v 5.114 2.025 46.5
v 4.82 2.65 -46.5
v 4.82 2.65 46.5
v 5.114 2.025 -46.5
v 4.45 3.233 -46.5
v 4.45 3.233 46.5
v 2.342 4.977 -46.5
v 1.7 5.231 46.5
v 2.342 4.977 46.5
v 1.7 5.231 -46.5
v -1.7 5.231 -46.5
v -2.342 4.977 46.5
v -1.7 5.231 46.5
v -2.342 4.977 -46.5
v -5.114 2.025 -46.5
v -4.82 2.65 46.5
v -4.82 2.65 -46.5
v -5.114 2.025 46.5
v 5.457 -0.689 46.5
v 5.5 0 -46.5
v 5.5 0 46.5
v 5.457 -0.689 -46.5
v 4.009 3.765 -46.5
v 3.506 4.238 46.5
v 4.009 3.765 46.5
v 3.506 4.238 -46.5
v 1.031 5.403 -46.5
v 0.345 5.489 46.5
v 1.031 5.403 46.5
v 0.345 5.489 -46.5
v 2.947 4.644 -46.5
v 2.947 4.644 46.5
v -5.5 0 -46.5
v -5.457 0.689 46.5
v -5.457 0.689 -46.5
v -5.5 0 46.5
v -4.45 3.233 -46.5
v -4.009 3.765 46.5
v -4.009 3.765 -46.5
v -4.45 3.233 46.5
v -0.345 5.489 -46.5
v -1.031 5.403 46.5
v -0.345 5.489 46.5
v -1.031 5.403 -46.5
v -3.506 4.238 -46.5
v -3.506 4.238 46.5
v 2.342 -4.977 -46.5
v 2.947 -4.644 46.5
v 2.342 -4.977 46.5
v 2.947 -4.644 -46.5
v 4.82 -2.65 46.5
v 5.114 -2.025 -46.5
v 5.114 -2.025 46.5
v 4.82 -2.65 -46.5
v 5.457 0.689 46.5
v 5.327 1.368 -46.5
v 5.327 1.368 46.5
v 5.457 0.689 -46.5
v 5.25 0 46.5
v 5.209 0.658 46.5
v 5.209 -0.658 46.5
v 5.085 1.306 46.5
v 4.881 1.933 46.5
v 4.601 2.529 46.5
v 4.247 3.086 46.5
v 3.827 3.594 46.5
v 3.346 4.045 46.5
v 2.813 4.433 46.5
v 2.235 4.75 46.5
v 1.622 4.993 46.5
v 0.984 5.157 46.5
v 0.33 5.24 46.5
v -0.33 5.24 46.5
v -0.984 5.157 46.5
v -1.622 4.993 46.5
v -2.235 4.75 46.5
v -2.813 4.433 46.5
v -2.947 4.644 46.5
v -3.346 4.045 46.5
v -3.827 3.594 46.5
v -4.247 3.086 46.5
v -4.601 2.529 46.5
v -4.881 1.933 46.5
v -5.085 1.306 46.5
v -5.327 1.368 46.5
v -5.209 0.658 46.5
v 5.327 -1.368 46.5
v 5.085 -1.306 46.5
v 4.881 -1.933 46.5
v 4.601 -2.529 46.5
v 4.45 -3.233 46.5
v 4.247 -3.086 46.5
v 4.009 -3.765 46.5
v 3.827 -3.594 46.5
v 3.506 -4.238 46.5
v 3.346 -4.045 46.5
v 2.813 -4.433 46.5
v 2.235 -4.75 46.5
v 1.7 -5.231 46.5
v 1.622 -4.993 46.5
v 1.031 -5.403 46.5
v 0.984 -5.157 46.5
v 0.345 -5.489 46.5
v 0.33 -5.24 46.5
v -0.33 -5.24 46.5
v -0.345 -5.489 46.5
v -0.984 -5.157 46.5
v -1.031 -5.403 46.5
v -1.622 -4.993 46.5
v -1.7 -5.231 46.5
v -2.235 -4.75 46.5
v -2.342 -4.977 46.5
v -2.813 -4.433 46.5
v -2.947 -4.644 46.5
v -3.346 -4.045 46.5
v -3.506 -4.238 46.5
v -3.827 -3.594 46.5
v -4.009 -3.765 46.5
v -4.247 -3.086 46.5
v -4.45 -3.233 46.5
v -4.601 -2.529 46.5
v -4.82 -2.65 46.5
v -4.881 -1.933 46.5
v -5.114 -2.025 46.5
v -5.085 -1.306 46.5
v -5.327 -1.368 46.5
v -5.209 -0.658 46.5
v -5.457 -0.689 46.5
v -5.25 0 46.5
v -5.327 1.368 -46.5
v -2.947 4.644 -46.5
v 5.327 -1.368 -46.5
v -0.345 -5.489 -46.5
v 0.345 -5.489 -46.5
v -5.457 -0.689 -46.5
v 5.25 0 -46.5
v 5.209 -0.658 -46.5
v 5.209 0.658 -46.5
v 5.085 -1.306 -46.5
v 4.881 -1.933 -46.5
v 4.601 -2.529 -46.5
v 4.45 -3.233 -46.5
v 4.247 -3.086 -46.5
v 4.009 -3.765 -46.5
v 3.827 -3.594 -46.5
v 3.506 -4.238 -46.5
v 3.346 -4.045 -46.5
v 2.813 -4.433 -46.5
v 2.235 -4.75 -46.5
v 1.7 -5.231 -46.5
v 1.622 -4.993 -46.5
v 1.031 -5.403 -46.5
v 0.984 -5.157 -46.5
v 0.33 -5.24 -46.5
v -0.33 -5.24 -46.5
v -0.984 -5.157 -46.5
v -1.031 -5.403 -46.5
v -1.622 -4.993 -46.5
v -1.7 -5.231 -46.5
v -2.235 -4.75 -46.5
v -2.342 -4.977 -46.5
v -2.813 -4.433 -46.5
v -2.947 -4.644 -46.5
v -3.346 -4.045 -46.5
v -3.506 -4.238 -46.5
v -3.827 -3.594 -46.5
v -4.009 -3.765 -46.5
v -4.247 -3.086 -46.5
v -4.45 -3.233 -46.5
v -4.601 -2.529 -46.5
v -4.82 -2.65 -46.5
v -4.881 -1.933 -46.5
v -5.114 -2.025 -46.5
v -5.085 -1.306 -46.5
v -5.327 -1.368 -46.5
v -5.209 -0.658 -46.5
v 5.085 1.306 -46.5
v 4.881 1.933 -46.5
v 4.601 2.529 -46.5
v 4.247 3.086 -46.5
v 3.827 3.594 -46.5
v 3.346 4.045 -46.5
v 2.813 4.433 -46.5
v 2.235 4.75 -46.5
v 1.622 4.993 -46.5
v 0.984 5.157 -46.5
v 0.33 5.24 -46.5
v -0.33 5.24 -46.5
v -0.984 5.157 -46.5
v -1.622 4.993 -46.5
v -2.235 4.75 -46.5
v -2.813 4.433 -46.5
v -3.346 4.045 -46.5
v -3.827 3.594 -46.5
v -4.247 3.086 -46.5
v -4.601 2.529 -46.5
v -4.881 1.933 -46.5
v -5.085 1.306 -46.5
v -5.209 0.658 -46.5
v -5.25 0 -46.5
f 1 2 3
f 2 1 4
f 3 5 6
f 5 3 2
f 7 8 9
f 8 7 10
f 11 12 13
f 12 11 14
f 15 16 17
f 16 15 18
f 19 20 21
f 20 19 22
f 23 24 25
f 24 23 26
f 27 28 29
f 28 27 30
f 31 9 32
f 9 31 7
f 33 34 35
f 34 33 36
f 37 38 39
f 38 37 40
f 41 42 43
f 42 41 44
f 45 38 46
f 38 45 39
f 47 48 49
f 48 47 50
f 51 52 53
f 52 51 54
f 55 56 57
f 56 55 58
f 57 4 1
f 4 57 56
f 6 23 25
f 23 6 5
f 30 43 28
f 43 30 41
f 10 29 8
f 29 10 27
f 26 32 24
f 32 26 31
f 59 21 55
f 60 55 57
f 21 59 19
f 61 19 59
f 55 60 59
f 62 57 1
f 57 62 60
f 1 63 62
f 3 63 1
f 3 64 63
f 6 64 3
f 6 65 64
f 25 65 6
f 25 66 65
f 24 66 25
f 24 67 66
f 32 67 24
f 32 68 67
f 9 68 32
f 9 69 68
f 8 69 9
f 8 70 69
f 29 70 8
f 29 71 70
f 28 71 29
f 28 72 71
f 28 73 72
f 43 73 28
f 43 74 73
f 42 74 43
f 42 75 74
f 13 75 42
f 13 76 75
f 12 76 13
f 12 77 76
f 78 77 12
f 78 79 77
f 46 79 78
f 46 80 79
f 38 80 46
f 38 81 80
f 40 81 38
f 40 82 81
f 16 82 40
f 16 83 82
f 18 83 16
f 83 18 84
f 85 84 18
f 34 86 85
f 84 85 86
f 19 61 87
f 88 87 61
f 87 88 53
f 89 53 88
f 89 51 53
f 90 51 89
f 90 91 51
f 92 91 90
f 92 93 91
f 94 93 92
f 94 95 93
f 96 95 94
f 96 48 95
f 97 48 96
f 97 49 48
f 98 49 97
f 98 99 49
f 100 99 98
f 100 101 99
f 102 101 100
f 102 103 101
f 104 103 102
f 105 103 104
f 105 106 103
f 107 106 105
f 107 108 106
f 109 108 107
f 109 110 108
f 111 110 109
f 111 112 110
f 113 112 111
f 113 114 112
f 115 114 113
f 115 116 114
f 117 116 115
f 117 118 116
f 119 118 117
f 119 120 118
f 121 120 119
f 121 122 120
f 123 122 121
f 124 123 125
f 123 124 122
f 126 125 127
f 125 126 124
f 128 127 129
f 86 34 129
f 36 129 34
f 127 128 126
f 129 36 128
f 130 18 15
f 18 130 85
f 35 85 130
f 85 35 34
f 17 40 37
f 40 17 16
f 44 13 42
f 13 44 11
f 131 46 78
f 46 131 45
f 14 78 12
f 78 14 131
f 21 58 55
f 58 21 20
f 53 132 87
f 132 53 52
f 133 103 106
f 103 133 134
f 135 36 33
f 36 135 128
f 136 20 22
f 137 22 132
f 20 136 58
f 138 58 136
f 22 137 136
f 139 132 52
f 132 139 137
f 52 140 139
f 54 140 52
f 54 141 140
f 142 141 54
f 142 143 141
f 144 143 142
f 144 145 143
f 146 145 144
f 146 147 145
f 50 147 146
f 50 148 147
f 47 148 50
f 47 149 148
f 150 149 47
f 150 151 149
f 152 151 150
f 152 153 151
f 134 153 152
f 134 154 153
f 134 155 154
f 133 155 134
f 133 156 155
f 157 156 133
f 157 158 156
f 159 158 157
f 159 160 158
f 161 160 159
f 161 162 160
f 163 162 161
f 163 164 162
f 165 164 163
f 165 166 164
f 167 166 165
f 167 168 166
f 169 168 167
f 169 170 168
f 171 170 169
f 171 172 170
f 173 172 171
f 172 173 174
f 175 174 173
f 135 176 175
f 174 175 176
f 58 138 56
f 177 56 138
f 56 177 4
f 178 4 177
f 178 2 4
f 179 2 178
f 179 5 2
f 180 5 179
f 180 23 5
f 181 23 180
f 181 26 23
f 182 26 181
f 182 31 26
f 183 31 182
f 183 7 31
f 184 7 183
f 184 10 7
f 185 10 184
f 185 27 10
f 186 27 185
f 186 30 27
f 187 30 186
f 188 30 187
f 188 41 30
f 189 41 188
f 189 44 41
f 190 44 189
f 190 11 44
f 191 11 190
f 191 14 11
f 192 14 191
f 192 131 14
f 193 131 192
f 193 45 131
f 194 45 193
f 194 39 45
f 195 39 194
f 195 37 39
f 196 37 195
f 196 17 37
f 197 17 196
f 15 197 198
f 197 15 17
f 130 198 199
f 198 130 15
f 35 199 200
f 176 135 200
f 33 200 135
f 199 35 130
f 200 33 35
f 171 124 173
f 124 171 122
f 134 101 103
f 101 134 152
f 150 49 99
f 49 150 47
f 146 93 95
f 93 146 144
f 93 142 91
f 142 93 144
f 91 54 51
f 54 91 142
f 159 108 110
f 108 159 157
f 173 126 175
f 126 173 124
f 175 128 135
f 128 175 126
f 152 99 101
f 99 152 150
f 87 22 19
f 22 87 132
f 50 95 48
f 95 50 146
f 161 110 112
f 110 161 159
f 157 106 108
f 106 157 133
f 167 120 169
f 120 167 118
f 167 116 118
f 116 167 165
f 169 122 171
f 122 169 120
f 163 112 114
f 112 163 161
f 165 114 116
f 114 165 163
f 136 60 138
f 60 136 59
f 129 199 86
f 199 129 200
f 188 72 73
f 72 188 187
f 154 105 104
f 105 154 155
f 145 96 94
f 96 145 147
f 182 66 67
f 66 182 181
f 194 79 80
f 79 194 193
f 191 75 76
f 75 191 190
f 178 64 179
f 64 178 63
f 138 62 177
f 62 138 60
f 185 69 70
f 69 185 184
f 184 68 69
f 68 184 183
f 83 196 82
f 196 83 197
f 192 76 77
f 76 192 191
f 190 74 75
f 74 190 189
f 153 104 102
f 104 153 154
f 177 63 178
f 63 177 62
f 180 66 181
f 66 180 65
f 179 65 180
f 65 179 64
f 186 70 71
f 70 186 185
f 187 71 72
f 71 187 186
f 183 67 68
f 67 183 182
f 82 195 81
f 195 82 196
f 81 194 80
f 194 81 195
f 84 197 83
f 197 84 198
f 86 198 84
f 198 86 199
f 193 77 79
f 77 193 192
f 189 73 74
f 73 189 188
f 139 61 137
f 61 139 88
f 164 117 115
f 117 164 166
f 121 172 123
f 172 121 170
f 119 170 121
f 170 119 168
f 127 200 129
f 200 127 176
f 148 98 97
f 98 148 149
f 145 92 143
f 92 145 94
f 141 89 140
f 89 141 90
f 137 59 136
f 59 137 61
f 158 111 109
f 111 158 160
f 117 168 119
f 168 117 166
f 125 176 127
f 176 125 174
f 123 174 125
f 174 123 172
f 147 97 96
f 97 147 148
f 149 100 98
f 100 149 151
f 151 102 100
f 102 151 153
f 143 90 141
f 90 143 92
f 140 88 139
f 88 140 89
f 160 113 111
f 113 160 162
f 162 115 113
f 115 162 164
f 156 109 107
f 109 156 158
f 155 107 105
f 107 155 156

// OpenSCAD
$fn = 50;


difference() {
	union() {
		translate(v = [0, 0, -46.5000000000]) {
			cylinder(h = 93, r = 5.5000000000);
		}
	}
	union() {
		translate(v = [0, 0, -100.0000000000]) {
			cylinder(h = 200, r = 5.2500000000);
		}
	}
}
